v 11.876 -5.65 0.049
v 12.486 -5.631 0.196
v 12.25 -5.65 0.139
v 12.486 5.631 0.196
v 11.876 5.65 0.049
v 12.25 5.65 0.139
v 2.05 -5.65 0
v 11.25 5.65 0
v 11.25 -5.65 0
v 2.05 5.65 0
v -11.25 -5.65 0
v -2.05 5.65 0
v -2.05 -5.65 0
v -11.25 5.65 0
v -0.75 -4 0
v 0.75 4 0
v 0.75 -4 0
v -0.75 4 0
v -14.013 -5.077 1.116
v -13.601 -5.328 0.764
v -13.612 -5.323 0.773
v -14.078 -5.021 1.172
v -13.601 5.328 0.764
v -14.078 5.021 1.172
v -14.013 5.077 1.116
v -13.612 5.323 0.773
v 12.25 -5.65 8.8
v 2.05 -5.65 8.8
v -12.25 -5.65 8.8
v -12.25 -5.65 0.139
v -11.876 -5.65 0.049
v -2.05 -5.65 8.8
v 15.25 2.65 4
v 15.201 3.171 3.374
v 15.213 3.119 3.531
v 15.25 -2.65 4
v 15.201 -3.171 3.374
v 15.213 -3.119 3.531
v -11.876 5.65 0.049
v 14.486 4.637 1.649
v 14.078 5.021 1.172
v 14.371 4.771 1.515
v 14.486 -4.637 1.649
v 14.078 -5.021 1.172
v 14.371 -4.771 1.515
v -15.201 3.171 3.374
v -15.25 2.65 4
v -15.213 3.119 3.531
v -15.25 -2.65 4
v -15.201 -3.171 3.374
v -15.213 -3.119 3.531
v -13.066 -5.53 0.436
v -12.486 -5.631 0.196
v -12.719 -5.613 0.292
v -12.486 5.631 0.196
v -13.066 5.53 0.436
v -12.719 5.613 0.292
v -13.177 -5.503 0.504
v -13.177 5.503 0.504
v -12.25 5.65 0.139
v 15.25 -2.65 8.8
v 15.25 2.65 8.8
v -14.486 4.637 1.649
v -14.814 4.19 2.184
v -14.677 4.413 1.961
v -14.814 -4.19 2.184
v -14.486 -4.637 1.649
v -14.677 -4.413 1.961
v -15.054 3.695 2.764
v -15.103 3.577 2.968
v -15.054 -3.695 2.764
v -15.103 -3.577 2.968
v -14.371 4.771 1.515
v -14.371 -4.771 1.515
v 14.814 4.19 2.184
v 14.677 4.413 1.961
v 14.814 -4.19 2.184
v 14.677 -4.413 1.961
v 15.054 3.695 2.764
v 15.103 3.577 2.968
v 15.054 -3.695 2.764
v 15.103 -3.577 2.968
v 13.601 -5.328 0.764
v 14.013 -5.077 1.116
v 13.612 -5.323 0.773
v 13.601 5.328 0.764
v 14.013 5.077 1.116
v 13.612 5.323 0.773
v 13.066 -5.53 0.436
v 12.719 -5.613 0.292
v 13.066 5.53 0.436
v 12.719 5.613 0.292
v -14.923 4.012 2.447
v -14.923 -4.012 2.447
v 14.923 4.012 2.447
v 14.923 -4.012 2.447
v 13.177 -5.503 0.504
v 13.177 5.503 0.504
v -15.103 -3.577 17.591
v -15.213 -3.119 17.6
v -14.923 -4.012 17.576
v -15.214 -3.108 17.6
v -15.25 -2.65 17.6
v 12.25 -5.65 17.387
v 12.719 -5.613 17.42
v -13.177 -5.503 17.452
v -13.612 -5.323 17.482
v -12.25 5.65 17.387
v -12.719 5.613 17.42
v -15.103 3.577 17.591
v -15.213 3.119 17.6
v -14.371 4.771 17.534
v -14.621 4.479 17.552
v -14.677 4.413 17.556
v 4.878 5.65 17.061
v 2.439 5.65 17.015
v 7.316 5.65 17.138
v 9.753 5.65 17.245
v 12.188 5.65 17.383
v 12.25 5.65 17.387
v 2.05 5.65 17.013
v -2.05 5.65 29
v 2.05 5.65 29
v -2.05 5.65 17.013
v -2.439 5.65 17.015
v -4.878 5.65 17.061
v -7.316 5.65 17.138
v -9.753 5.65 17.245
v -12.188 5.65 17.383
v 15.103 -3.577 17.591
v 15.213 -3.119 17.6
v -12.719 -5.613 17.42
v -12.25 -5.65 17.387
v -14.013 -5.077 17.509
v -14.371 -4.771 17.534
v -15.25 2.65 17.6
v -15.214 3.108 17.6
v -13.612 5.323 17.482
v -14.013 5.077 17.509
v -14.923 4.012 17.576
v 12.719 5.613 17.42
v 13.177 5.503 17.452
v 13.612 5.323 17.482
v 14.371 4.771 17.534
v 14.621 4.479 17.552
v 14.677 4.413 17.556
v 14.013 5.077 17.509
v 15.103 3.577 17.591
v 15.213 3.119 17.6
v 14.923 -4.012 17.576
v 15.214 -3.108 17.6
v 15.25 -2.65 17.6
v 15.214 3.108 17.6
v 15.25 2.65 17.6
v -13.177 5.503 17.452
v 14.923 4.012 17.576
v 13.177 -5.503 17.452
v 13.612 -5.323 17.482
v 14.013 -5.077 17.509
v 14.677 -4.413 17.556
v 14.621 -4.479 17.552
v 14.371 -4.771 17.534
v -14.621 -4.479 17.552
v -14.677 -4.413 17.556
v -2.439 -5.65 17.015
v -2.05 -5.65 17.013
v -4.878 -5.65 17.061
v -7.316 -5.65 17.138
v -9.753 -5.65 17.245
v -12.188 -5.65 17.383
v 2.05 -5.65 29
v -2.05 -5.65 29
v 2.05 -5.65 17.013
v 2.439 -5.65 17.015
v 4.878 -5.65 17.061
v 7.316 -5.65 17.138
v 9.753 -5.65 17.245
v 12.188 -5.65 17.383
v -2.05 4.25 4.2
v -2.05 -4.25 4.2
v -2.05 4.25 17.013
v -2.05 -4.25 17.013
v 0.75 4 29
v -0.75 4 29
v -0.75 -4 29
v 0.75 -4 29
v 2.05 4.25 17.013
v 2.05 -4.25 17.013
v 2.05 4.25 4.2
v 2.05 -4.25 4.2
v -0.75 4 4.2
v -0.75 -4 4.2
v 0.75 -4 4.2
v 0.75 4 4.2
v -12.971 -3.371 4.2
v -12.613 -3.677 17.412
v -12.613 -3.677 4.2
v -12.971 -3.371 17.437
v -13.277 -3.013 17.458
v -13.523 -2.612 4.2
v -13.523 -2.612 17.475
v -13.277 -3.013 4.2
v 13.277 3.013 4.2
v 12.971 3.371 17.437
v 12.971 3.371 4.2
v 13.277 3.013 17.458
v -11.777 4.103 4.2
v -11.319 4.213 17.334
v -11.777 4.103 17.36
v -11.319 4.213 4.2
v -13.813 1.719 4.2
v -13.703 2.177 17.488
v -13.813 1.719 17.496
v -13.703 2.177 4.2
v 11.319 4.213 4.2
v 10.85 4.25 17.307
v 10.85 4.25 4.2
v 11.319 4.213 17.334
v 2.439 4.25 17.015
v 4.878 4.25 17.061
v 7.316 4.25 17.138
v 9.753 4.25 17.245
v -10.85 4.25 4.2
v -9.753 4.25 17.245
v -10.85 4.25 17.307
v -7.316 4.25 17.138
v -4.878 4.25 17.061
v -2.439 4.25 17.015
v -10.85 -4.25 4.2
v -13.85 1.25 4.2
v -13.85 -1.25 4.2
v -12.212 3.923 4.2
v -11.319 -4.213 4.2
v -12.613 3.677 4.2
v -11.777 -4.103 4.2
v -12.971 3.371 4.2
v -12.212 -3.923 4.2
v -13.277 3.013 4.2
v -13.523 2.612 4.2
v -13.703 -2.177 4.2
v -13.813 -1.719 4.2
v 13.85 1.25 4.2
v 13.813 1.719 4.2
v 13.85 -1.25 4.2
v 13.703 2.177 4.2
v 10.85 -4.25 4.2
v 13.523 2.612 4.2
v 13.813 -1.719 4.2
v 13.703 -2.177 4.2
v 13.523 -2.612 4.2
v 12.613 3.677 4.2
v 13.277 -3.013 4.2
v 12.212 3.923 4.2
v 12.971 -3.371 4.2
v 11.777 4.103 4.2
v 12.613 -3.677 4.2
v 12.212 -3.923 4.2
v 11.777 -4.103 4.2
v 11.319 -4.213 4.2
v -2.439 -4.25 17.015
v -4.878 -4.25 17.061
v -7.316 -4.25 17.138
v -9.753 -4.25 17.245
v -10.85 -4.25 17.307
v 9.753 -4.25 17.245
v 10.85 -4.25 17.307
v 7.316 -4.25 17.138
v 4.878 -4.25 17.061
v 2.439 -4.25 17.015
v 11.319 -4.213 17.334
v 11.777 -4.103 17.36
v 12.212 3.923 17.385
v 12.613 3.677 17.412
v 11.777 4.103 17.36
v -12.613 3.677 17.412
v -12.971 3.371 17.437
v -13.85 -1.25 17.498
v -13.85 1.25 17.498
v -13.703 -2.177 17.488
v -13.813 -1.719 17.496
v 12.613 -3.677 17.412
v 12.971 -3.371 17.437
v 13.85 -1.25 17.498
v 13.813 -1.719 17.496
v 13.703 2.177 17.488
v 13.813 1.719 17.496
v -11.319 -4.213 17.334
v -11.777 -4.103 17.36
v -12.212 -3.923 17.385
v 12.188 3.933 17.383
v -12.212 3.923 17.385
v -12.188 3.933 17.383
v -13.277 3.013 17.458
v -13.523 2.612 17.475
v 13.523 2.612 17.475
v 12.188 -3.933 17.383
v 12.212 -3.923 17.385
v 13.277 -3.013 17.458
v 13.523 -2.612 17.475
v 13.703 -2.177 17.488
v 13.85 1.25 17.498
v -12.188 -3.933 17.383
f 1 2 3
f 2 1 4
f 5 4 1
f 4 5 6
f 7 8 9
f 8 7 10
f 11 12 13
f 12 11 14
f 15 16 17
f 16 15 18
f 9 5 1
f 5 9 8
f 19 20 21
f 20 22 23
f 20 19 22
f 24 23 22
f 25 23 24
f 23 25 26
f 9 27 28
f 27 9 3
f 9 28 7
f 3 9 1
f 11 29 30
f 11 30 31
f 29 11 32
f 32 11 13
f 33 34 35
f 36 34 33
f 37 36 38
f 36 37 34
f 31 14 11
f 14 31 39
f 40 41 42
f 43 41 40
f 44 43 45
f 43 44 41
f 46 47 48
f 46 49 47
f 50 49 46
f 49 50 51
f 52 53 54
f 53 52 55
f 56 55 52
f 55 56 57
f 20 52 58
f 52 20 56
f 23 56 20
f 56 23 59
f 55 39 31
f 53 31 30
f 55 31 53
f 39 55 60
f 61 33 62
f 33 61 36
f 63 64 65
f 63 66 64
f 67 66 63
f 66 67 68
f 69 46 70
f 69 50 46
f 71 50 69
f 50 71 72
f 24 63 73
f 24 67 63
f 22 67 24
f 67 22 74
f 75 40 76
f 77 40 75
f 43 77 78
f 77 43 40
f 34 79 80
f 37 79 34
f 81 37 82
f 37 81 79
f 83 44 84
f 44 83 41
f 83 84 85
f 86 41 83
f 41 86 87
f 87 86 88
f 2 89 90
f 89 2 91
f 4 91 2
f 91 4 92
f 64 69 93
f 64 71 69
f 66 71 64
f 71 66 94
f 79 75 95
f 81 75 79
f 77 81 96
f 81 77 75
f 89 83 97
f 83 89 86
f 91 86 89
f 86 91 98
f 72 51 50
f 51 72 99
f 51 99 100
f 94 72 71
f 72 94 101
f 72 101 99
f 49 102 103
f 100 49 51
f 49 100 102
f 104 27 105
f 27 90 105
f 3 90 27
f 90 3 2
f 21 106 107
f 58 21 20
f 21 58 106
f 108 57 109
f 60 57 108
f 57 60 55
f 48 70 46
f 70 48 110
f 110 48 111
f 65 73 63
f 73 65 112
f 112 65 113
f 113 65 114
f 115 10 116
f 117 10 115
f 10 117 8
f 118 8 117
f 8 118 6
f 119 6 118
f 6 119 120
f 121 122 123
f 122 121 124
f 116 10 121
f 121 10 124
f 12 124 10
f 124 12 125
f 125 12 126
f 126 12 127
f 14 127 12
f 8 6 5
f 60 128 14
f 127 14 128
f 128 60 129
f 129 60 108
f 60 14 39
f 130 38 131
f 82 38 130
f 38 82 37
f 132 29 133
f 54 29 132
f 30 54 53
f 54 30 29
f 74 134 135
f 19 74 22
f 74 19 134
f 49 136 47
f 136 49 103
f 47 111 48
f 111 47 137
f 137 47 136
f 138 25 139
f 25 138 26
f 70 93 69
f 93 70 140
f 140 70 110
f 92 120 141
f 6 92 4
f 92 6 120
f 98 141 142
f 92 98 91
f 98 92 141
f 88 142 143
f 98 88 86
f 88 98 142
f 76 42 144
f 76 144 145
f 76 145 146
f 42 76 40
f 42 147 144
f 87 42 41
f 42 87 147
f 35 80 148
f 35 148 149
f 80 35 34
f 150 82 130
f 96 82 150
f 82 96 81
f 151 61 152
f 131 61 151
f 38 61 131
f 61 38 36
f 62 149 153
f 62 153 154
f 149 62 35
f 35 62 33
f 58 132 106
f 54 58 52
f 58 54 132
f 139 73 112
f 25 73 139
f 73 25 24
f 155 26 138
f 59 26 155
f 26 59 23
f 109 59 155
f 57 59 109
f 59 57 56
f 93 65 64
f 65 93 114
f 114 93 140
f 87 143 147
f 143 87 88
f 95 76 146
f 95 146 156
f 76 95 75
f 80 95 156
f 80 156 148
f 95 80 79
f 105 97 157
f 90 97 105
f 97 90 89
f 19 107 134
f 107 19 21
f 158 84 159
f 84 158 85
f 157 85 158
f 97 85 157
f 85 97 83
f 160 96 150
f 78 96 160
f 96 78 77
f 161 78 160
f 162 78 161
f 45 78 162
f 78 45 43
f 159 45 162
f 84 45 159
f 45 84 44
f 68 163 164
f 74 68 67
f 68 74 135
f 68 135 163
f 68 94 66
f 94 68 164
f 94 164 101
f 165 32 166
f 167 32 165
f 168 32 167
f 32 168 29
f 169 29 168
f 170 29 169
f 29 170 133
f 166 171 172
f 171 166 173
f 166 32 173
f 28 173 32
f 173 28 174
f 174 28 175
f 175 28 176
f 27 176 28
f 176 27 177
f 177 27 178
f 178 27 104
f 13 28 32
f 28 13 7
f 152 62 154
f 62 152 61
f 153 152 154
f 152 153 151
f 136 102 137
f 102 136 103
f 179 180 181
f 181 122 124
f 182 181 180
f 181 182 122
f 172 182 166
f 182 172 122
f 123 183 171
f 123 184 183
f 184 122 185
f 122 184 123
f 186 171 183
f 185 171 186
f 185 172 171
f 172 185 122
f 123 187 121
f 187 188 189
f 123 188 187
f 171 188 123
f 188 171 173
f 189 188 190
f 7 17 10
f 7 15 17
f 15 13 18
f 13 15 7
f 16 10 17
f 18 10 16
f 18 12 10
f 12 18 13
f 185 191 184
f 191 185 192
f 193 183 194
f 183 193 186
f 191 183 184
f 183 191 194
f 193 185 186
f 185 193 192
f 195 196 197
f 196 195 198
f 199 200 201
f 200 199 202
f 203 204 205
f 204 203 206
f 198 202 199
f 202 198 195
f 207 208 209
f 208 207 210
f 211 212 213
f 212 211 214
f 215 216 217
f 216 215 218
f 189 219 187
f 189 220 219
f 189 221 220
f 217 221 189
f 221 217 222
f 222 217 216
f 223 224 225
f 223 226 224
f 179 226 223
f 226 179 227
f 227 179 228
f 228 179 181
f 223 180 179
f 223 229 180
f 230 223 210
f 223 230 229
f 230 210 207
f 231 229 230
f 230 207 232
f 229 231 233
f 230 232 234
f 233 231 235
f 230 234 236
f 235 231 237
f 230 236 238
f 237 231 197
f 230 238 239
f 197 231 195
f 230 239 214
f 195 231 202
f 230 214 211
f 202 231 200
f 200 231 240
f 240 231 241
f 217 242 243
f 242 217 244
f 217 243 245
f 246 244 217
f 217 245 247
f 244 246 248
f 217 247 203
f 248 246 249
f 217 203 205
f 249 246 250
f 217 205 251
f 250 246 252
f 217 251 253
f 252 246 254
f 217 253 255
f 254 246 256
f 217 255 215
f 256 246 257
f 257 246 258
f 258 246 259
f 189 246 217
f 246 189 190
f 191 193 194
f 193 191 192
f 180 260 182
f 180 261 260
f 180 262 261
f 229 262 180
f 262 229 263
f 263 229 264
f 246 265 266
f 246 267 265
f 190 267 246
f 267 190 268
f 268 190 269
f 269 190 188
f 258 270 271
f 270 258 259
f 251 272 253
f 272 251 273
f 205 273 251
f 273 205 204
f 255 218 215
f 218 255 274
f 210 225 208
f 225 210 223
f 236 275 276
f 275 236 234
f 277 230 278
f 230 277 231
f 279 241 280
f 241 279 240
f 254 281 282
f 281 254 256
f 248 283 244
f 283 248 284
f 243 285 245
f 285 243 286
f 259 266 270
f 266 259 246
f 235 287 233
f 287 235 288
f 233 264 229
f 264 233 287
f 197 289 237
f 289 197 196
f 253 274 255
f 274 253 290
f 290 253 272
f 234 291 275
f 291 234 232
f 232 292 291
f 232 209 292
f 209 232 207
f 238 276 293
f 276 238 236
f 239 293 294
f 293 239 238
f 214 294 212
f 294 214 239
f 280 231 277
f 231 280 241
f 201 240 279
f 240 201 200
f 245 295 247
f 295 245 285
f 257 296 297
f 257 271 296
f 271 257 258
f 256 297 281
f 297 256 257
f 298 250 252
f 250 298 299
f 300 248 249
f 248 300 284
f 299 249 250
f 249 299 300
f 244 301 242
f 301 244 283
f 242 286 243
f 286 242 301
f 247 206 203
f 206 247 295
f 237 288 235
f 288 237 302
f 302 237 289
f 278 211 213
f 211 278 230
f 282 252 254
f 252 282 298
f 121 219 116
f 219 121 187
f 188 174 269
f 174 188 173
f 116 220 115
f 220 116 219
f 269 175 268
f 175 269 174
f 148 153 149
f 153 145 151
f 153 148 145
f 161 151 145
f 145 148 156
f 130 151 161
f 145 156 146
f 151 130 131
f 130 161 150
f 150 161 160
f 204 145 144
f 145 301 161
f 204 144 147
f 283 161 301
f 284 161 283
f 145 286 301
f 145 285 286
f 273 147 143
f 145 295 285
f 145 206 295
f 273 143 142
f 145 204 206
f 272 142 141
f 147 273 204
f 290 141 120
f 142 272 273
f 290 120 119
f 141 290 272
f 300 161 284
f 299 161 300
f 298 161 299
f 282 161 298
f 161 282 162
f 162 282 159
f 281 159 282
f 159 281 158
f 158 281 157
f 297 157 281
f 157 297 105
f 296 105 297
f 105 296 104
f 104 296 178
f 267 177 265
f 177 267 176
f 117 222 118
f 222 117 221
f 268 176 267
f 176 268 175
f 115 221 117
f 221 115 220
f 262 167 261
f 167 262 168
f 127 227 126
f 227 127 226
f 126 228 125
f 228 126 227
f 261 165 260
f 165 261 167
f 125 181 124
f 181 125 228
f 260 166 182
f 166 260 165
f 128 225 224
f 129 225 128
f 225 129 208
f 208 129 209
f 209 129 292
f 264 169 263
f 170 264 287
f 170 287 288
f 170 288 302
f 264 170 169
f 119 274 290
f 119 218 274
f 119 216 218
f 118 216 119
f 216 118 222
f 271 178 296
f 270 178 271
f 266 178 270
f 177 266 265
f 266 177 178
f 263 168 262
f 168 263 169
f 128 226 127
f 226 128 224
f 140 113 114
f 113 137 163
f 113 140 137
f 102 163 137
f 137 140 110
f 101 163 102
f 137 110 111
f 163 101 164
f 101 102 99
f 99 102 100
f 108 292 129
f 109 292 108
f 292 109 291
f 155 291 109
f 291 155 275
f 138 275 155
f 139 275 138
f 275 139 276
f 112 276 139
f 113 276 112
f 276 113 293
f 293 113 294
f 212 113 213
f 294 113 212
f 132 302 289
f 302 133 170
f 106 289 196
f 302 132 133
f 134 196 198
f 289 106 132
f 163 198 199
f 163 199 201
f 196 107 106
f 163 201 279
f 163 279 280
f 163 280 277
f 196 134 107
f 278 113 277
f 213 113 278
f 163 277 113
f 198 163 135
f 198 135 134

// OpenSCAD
// Tirette de grille pain

x = 30.5;
y = 11.3;
z = 17.6;
zm = 17.0;

e = 1.4;

petitRayon = 3;
grandRayon = 4;

manchonX = 4.1;
manchonZ = 29;

tiretteX = 1.5;
tiretteY = 8;

fleche = z - zm;
corde = x;

rayonDisque = (fleche)/2 + corde*corde/(8*fleche);


tirette();
//test();

module tirette() {
  difference() {
    union() {
      translate([0, 0, z/2])
        cubeArrondi([x, y, z/2], petitRayon);
      intersection() {
        cubeArrondi([x, y, z], petitRayon);
        translate([0, y/2, z/2])
          rotate([0, -90, 90])
            demiCubeArrondi([z, x, y], grandRayon);
      }
    }
    translate([0, 0, e*3])
      cubeArrondi([x - 2*e, y - 2*e, z], petitRayon);
    translate([0, z/2, rayonDisque + zm])
      rotate([90, 0, 0])
        cylinder(r=rayonDisque, h=z, $fn=500);
  }
  // manchon
  difference() {
    translate([-manchonX/2, -y/2, 0])
      cube([manchonX, y, manchonZ]);
    translate([-tiretteX/2, -tiretteY/2, 0])
      cube([tiretteX, tiretteY, manchonZ]);
  }
}

module test() {  
        cubeArrondi([x - 2*e, y - 2*e, z], petitRayon);

}

module demiCubeArrondi(size, radius) {
  difference() {
    cubeArrondi(size, radius);
    translate([0, -size[1]/2 -0.5, -0.5])
      cube([size[0], size[1]+1, size[2]+1]);
  }
}

module cubeArrondi(size, radius) {
  x = size[0] - radius;
  y = size[1] - radius;
  z = size[2];

  linear_extrude(height=z)
  hull()
  {
      // place 4 circles in the corners, with the given radius
      translate([(-x/2)+(radius/2), (-y/2)+(radius/2), 0])
      circle(r=radius, $fn=40);

      translate([(x/2)-(radius/2), (-y/2)+(radius/2), 0])
      circle(r=radius, $fn=40);

      translate([(-x/2)+(radius/2), (y/2)-(radius/2), 0])
      circle(r=radius, $fn=40);

      translate([(x/2)-(radius/2), (y/2)-(radius/2), 0])
      circle(r=radius, $fn=40);
  }  
}
